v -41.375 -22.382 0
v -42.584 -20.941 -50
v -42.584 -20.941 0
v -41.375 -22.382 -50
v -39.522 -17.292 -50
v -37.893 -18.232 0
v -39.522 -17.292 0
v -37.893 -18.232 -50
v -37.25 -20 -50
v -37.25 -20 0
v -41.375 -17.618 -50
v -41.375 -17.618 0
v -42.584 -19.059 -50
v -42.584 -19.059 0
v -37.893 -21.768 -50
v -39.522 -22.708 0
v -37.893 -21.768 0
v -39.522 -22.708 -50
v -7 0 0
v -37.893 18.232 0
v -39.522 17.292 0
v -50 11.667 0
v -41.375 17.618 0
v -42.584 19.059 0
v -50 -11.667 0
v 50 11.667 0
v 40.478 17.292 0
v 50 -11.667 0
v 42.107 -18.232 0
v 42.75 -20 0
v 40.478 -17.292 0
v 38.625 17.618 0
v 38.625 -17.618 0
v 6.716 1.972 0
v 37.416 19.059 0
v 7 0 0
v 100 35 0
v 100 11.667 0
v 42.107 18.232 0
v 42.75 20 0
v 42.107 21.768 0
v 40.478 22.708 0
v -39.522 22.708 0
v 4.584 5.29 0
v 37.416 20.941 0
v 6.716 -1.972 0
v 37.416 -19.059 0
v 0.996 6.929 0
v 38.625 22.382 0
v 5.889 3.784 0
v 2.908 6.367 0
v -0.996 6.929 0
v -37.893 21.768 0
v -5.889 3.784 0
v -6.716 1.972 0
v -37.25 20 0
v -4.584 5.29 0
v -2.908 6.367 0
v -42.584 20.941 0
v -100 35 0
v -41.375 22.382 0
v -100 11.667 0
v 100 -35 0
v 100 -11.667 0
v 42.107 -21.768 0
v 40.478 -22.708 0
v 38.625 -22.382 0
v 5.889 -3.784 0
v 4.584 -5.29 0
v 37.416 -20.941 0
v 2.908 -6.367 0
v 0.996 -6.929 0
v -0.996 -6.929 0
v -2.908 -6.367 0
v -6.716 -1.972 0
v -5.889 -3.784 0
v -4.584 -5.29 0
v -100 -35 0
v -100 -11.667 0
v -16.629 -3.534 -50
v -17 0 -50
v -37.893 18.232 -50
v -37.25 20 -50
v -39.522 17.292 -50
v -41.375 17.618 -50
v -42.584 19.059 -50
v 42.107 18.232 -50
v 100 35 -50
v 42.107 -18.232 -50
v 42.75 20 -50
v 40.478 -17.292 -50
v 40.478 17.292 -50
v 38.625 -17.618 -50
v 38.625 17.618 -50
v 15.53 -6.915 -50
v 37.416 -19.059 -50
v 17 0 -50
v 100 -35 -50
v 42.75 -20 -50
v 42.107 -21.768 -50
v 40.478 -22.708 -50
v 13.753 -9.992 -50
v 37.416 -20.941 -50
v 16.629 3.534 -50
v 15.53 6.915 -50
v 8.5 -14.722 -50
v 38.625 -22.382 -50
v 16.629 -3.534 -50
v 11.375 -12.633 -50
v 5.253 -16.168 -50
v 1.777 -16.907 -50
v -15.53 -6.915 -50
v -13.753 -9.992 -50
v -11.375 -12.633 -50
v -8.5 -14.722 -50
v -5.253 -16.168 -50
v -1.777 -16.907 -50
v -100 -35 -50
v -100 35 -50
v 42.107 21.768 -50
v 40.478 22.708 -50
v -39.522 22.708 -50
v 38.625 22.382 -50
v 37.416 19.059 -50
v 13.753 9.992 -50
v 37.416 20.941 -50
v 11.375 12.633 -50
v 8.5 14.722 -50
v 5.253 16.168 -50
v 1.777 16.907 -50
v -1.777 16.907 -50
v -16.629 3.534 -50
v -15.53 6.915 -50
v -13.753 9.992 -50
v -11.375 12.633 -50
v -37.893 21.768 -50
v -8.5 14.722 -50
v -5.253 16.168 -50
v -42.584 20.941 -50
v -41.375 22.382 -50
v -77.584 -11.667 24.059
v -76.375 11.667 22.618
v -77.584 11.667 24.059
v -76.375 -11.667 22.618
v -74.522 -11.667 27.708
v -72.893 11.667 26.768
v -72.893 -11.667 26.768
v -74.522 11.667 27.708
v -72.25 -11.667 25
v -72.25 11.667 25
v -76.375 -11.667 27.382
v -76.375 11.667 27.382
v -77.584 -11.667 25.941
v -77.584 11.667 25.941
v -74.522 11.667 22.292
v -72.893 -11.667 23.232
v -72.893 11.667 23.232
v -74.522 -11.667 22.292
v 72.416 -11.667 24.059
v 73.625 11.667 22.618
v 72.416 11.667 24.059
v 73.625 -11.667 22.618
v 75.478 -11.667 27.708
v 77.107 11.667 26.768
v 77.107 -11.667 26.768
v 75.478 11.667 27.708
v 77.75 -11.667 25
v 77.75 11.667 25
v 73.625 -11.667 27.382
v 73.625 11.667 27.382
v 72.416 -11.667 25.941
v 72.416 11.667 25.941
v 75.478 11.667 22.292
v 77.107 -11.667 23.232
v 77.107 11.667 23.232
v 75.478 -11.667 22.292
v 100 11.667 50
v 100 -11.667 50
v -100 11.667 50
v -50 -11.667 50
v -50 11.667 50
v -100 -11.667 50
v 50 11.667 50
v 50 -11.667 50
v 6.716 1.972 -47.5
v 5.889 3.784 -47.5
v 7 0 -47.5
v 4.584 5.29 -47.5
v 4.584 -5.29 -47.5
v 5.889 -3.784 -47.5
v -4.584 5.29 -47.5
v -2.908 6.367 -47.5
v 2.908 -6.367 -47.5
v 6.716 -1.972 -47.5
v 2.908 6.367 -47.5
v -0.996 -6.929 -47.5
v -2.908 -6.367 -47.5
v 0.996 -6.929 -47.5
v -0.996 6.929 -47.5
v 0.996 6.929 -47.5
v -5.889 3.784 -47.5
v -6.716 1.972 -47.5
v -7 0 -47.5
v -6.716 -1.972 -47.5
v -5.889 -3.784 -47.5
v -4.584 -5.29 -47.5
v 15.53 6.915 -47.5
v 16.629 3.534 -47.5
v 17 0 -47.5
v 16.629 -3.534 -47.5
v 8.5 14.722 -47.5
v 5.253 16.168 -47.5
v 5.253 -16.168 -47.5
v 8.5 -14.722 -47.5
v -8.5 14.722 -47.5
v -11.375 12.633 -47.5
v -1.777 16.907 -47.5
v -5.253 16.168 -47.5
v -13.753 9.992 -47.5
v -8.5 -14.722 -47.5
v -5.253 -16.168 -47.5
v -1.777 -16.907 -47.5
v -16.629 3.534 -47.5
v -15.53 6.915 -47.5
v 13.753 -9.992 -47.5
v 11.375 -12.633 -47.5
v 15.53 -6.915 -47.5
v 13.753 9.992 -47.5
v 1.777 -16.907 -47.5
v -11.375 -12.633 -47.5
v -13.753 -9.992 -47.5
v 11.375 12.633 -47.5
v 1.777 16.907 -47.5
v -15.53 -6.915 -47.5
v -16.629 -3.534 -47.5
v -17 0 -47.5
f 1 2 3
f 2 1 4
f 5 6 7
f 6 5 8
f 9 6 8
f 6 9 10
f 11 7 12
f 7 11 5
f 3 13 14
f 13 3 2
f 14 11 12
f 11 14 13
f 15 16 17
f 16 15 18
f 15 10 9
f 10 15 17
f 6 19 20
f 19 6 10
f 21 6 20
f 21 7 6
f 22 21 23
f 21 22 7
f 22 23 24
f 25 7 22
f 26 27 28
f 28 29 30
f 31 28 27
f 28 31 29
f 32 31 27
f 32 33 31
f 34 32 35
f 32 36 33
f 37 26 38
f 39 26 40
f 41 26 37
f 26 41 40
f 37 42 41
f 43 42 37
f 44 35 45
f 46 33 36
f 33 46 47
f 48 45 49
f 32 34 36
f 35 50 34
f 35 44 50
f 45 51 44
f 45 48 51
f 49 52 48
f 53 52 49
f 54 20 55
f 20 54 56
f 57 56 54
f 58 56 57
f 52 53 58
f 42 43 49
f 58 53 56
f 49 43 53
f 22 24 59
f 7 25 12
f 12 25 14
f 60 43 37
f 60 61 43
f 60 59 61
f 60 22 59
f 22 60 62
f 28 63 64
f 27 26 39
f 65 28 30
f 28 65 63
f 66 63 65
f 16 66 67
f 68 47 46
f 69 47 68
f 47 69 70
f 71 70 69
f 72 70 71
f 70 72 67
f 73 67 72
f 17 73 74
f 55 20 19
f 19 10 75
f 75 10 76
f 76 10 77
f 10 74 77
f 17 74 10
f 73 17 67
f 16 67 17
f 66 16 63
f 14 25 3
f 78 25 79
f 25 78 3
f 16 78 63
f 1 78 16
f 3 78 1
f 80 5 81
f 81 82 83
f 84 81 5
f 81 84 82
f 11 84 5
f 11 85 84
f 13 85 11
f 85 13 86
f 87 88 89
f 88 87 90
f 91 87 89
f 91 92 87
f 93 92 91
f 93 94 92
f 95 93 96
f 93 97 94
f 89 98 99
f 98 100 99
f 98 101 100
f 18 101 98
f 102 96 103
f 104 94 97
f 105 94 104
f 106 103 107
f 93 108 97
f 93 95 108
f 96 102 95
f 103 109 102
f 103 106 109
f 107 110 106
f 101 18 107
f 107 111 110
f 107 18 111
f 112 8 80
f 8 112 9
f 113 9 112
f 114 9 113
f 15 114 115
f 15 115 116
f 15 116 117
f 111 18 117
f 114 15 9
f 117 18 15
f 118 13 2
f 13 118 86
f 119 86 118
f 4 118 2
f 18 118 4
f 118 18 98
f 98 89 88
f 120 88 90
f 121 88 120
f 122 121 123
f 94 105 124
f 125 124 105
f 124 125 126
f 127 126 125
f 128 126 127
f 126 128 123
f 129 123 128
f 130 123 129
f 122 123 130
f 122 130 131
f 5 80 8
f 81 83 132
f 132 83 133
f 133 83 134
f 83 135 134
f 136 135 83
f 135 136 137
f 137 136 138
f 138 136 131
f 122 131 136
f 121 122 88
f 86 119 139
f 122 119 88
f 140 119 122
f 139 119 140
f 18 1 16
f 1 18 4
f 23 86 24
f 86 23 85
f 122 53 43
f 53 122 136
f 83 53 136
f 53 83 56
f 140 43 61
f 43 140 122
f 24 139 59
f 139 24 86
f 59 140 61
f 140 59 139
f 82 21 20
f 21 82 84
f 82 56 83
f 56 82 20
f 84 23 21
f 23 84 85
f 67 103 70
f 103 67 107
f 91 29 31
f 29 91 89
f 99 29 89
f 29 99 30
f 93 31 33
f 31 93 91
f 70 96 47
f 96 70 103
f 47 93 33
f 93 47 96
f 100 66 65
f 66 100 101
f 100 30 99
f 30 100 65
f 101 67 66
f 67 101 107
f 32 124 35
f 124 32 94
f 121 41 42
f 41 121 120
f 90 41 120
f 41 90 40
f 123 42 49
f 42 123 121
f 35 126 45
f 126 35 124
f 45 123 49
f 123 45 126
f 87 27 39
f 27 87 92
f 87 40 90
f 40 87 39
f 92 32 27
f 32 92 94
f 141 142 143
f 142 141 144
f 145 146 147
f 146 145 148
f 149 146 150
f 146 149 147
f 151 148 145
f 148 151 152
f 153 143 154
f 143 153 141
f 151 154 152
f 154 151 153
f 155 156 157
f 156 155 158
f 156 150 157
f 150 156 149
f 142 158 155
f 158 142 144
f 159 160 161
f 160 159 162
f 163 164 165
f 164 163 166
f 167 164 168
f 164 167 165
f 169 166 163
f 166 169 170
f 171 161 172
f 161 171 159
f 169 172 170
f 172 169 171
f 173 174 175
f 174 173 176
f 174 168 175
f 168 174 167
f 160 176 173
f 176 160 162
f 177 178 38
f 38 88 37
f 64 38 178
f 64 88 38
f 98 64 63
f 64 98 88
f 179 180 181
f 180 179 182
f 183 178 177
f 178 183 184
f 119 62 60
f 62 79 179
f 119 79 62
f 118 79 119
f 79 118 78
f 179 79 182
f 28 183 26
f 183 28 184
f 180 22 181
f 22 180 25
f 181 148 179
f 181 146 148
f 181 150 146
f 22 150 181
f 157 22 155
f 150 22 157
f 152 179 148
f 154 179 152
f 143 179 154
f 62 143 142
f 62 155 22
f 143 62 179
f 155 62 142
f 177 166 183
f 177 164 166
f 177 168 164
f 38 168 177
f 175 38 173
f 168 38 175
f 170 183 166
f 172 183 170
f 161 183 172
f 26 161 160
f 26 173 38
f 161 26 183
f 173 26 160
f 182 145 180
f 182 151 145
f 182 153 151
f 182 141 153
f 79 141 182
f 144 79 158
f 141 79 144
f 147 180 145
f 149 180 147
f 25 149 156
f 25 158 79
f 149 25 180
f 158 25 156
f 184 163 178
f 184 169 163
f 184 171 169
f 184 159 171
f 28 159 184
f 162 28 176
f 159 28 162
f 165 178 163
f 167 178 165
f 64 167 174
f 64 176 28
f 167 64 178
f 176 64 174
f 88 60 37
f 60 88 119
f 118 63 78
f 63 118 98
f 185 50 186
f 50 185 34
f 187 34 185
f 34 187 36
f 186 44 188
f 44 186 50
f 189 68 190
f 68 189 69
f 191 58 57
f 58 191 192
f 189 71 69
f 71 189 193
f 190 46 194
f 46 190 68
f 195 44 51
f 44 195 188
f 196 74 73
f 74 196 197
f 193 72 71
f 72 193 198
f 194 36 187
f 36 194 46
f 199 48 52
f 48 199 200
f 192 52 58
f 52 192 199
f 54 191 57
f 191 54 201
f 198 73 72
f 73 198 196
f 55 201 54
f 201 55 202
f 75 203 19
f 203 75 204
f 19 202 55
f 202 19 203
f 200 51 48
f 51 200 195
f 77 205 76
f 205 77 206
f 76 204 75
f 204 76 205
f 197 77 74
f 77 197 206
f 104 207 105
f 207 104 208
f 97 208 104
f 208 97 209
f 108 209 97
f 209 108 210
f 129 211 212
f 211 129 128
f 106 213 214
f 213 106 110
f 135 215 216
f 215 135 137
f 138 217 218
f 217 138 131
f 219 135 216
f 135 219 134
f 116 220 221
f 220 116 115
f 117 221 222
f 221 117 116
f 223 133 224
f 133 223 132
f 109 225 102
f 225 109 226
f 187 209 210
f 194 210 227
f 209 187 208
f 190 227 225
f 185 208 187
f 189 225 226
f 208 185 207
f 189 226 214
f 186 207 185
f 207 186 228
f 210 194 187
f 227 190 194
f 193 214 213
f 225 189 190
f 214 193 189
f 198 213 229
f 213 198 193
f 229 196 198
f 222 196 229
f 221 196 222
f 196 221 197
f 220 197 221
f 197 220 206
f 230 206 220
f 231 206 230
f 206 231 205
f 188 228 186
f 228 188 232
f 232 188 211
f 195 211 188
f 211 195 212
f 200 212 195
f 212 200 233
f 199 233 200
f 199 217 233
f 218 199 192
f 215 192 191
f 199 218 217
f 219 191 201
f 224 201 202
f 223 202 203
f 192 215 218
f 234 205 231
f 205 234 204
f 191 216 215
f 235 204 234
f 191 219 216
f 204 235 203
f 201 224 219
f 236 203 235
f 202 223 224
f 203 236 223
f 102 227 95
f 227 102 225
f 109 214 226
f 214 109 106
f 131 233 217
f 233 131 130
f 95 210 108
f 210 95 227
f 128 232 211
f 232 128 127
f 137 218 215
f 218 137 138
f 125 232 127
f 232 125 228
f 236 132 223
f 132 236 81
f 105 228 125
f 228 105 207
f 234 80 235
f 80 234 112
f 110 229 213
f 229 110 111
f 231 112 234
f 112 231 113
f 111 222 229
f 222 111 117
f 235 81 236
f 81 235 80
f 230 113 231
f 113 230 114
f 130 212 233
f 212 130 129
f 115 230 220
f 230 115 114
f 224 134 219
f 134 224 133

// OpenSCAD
// file: Parameters.scad
// Planetary gear bearing (customizable)

// outer diameter of ring
D=80;

// thickness
T=20;

//Ball Bearing
bbT=7;      // thickness
bbED=22;    // external diameter
bbID=8;     // internal diameter
bbIR=12;    // internal ring
bbIDWH=1; // internal disk washer high

//Thrust Ball Bearing
tbbT=7;      // thickness
tbbED=16;    // external diameter
tbbID=8;     // internal diameter

SlowPartHigh=38;
slowPartSmallDiameter=30;
lhhW=17; // large hexagonal hole Width
lhhH=10; // large hexagonal hole High

//Drill Support
dsHighTop=200;
dsWidth=200;
dsTickness=50;
dsDepth= 70;
dsHole=43;

dsHighBottom=50;
HoleDiameterForThreadedRod=14;
HoleDiameterForBearingBallPlate=34;
BearingBallPlateHight=5;
FixingHolesDiameter=5.5;

// clearance
tol=0.15;

number_of_planets=4;
number_of_teeth_on_planets=15;
approximate_number_of_teeth_on_sun=10;

// pressure angle
P=45;//[30:60]

// number of teeth to twist across
nTwist=1;

// width of little hexagonal hole
w=6.7;

DR=0.5*1;// maximum depth ratio of teeth

m=round(number_of_planets);
np=round(number_of_teeth_on_planets);
ns1=approximate_number_of_teeth_on_sun;
k1=round(2/m*(ns1+np));
k= k1*m%2!=0 ? k1+1 : k1;
ns=k*m/2-np;
nr=ns+2*np;
pitchD=0.9*D/(1+min(PI/(2*nr*tan(P)),PI*DR/nr));
pitch=pitchD*PI/nr;
helix_angle=atan(2*nTwist*pitch/T);
phi=$t*360/m;

echo("ns=",ns);
echo("pitch =",pitch);
echo("helix_angle=",helix_angle);


module FixingDrillSupportParts(location)
{
    rotate([90,0,0]) 
        translate([0, location,  0]) 
    {
        translate([-((dsWidth - 2*dsTickness)+((dsWidth - 2*dsTickness)/2))/2,-dsTickness,0]) 
            cylinder(r=FixingHolesDiameter/2, h=dsDepth, center=true);
        translate([+((dsWidth - 2*dsTickness)+((dsWidth - 2*dsTickness)/2))/2,-dsTickness,0]) 
            cylinder(r=FixingHolesDiameter/2, h=dsDepth, center=true);
    }
}
// main file
include <./Parameters.scad>;


translate([0,0,-dsHighBottom/2])
    DrillSupportBottom();

module DrillSupportBottom()
union()
{
    difference()
    {
        translate([0,0,dsHighBottom]) cube([dsWidth,dsDepth,dsHighBottom],center=true);
        translate([0,0,dsHighBottom]) cube([dsWidth - 2*dsTickness,dsDepth,dsHighBottom],center=true);
        translate([0,dsDepth/3,dsHighBottom]) cube([dsWidth,dsDepth/3,dsHighBottom],center=true);
        translate([0,-dsDepth/3,dsHighBottom]) cube([dsWidth,dsDepth/3,dsHighBottom],center=true);
        FixingDrillSupportParts(2*dsTickness);
    }
    difference()
    {
        cube([dsWidth,dsDepth,dsHighBottom],center=true);
        cylinder(r=HoleDiameterForThreadedRod/2, h=dsHighBottom, center=true);
        translate([0,0,-dsHighBottom/2]) cylinder(r=HoleDiameterForBearingBallPlate/2, h=BearingBallPlateHight, center=true);
        FixingHoles();        
    }
}

module FixingHoles()
{
    translate([-40,-20,0]) cylinder(r=FixingHolesDiameter/2, h=dsHighBottom, center=true);
    translate([-40,20,0]) cylinder(r=FixingHolesDiameter/2, h=dsHighBottom, center=true);
    translate([40,-20,0]) cylinder(r=FixingHolesDiameter/2, h=dsHighBottom, center=true);
    translate([40,20,0]) cylinder(r=FixingHolesDiameter/2, h=dsHighBottom, center=true);
}
